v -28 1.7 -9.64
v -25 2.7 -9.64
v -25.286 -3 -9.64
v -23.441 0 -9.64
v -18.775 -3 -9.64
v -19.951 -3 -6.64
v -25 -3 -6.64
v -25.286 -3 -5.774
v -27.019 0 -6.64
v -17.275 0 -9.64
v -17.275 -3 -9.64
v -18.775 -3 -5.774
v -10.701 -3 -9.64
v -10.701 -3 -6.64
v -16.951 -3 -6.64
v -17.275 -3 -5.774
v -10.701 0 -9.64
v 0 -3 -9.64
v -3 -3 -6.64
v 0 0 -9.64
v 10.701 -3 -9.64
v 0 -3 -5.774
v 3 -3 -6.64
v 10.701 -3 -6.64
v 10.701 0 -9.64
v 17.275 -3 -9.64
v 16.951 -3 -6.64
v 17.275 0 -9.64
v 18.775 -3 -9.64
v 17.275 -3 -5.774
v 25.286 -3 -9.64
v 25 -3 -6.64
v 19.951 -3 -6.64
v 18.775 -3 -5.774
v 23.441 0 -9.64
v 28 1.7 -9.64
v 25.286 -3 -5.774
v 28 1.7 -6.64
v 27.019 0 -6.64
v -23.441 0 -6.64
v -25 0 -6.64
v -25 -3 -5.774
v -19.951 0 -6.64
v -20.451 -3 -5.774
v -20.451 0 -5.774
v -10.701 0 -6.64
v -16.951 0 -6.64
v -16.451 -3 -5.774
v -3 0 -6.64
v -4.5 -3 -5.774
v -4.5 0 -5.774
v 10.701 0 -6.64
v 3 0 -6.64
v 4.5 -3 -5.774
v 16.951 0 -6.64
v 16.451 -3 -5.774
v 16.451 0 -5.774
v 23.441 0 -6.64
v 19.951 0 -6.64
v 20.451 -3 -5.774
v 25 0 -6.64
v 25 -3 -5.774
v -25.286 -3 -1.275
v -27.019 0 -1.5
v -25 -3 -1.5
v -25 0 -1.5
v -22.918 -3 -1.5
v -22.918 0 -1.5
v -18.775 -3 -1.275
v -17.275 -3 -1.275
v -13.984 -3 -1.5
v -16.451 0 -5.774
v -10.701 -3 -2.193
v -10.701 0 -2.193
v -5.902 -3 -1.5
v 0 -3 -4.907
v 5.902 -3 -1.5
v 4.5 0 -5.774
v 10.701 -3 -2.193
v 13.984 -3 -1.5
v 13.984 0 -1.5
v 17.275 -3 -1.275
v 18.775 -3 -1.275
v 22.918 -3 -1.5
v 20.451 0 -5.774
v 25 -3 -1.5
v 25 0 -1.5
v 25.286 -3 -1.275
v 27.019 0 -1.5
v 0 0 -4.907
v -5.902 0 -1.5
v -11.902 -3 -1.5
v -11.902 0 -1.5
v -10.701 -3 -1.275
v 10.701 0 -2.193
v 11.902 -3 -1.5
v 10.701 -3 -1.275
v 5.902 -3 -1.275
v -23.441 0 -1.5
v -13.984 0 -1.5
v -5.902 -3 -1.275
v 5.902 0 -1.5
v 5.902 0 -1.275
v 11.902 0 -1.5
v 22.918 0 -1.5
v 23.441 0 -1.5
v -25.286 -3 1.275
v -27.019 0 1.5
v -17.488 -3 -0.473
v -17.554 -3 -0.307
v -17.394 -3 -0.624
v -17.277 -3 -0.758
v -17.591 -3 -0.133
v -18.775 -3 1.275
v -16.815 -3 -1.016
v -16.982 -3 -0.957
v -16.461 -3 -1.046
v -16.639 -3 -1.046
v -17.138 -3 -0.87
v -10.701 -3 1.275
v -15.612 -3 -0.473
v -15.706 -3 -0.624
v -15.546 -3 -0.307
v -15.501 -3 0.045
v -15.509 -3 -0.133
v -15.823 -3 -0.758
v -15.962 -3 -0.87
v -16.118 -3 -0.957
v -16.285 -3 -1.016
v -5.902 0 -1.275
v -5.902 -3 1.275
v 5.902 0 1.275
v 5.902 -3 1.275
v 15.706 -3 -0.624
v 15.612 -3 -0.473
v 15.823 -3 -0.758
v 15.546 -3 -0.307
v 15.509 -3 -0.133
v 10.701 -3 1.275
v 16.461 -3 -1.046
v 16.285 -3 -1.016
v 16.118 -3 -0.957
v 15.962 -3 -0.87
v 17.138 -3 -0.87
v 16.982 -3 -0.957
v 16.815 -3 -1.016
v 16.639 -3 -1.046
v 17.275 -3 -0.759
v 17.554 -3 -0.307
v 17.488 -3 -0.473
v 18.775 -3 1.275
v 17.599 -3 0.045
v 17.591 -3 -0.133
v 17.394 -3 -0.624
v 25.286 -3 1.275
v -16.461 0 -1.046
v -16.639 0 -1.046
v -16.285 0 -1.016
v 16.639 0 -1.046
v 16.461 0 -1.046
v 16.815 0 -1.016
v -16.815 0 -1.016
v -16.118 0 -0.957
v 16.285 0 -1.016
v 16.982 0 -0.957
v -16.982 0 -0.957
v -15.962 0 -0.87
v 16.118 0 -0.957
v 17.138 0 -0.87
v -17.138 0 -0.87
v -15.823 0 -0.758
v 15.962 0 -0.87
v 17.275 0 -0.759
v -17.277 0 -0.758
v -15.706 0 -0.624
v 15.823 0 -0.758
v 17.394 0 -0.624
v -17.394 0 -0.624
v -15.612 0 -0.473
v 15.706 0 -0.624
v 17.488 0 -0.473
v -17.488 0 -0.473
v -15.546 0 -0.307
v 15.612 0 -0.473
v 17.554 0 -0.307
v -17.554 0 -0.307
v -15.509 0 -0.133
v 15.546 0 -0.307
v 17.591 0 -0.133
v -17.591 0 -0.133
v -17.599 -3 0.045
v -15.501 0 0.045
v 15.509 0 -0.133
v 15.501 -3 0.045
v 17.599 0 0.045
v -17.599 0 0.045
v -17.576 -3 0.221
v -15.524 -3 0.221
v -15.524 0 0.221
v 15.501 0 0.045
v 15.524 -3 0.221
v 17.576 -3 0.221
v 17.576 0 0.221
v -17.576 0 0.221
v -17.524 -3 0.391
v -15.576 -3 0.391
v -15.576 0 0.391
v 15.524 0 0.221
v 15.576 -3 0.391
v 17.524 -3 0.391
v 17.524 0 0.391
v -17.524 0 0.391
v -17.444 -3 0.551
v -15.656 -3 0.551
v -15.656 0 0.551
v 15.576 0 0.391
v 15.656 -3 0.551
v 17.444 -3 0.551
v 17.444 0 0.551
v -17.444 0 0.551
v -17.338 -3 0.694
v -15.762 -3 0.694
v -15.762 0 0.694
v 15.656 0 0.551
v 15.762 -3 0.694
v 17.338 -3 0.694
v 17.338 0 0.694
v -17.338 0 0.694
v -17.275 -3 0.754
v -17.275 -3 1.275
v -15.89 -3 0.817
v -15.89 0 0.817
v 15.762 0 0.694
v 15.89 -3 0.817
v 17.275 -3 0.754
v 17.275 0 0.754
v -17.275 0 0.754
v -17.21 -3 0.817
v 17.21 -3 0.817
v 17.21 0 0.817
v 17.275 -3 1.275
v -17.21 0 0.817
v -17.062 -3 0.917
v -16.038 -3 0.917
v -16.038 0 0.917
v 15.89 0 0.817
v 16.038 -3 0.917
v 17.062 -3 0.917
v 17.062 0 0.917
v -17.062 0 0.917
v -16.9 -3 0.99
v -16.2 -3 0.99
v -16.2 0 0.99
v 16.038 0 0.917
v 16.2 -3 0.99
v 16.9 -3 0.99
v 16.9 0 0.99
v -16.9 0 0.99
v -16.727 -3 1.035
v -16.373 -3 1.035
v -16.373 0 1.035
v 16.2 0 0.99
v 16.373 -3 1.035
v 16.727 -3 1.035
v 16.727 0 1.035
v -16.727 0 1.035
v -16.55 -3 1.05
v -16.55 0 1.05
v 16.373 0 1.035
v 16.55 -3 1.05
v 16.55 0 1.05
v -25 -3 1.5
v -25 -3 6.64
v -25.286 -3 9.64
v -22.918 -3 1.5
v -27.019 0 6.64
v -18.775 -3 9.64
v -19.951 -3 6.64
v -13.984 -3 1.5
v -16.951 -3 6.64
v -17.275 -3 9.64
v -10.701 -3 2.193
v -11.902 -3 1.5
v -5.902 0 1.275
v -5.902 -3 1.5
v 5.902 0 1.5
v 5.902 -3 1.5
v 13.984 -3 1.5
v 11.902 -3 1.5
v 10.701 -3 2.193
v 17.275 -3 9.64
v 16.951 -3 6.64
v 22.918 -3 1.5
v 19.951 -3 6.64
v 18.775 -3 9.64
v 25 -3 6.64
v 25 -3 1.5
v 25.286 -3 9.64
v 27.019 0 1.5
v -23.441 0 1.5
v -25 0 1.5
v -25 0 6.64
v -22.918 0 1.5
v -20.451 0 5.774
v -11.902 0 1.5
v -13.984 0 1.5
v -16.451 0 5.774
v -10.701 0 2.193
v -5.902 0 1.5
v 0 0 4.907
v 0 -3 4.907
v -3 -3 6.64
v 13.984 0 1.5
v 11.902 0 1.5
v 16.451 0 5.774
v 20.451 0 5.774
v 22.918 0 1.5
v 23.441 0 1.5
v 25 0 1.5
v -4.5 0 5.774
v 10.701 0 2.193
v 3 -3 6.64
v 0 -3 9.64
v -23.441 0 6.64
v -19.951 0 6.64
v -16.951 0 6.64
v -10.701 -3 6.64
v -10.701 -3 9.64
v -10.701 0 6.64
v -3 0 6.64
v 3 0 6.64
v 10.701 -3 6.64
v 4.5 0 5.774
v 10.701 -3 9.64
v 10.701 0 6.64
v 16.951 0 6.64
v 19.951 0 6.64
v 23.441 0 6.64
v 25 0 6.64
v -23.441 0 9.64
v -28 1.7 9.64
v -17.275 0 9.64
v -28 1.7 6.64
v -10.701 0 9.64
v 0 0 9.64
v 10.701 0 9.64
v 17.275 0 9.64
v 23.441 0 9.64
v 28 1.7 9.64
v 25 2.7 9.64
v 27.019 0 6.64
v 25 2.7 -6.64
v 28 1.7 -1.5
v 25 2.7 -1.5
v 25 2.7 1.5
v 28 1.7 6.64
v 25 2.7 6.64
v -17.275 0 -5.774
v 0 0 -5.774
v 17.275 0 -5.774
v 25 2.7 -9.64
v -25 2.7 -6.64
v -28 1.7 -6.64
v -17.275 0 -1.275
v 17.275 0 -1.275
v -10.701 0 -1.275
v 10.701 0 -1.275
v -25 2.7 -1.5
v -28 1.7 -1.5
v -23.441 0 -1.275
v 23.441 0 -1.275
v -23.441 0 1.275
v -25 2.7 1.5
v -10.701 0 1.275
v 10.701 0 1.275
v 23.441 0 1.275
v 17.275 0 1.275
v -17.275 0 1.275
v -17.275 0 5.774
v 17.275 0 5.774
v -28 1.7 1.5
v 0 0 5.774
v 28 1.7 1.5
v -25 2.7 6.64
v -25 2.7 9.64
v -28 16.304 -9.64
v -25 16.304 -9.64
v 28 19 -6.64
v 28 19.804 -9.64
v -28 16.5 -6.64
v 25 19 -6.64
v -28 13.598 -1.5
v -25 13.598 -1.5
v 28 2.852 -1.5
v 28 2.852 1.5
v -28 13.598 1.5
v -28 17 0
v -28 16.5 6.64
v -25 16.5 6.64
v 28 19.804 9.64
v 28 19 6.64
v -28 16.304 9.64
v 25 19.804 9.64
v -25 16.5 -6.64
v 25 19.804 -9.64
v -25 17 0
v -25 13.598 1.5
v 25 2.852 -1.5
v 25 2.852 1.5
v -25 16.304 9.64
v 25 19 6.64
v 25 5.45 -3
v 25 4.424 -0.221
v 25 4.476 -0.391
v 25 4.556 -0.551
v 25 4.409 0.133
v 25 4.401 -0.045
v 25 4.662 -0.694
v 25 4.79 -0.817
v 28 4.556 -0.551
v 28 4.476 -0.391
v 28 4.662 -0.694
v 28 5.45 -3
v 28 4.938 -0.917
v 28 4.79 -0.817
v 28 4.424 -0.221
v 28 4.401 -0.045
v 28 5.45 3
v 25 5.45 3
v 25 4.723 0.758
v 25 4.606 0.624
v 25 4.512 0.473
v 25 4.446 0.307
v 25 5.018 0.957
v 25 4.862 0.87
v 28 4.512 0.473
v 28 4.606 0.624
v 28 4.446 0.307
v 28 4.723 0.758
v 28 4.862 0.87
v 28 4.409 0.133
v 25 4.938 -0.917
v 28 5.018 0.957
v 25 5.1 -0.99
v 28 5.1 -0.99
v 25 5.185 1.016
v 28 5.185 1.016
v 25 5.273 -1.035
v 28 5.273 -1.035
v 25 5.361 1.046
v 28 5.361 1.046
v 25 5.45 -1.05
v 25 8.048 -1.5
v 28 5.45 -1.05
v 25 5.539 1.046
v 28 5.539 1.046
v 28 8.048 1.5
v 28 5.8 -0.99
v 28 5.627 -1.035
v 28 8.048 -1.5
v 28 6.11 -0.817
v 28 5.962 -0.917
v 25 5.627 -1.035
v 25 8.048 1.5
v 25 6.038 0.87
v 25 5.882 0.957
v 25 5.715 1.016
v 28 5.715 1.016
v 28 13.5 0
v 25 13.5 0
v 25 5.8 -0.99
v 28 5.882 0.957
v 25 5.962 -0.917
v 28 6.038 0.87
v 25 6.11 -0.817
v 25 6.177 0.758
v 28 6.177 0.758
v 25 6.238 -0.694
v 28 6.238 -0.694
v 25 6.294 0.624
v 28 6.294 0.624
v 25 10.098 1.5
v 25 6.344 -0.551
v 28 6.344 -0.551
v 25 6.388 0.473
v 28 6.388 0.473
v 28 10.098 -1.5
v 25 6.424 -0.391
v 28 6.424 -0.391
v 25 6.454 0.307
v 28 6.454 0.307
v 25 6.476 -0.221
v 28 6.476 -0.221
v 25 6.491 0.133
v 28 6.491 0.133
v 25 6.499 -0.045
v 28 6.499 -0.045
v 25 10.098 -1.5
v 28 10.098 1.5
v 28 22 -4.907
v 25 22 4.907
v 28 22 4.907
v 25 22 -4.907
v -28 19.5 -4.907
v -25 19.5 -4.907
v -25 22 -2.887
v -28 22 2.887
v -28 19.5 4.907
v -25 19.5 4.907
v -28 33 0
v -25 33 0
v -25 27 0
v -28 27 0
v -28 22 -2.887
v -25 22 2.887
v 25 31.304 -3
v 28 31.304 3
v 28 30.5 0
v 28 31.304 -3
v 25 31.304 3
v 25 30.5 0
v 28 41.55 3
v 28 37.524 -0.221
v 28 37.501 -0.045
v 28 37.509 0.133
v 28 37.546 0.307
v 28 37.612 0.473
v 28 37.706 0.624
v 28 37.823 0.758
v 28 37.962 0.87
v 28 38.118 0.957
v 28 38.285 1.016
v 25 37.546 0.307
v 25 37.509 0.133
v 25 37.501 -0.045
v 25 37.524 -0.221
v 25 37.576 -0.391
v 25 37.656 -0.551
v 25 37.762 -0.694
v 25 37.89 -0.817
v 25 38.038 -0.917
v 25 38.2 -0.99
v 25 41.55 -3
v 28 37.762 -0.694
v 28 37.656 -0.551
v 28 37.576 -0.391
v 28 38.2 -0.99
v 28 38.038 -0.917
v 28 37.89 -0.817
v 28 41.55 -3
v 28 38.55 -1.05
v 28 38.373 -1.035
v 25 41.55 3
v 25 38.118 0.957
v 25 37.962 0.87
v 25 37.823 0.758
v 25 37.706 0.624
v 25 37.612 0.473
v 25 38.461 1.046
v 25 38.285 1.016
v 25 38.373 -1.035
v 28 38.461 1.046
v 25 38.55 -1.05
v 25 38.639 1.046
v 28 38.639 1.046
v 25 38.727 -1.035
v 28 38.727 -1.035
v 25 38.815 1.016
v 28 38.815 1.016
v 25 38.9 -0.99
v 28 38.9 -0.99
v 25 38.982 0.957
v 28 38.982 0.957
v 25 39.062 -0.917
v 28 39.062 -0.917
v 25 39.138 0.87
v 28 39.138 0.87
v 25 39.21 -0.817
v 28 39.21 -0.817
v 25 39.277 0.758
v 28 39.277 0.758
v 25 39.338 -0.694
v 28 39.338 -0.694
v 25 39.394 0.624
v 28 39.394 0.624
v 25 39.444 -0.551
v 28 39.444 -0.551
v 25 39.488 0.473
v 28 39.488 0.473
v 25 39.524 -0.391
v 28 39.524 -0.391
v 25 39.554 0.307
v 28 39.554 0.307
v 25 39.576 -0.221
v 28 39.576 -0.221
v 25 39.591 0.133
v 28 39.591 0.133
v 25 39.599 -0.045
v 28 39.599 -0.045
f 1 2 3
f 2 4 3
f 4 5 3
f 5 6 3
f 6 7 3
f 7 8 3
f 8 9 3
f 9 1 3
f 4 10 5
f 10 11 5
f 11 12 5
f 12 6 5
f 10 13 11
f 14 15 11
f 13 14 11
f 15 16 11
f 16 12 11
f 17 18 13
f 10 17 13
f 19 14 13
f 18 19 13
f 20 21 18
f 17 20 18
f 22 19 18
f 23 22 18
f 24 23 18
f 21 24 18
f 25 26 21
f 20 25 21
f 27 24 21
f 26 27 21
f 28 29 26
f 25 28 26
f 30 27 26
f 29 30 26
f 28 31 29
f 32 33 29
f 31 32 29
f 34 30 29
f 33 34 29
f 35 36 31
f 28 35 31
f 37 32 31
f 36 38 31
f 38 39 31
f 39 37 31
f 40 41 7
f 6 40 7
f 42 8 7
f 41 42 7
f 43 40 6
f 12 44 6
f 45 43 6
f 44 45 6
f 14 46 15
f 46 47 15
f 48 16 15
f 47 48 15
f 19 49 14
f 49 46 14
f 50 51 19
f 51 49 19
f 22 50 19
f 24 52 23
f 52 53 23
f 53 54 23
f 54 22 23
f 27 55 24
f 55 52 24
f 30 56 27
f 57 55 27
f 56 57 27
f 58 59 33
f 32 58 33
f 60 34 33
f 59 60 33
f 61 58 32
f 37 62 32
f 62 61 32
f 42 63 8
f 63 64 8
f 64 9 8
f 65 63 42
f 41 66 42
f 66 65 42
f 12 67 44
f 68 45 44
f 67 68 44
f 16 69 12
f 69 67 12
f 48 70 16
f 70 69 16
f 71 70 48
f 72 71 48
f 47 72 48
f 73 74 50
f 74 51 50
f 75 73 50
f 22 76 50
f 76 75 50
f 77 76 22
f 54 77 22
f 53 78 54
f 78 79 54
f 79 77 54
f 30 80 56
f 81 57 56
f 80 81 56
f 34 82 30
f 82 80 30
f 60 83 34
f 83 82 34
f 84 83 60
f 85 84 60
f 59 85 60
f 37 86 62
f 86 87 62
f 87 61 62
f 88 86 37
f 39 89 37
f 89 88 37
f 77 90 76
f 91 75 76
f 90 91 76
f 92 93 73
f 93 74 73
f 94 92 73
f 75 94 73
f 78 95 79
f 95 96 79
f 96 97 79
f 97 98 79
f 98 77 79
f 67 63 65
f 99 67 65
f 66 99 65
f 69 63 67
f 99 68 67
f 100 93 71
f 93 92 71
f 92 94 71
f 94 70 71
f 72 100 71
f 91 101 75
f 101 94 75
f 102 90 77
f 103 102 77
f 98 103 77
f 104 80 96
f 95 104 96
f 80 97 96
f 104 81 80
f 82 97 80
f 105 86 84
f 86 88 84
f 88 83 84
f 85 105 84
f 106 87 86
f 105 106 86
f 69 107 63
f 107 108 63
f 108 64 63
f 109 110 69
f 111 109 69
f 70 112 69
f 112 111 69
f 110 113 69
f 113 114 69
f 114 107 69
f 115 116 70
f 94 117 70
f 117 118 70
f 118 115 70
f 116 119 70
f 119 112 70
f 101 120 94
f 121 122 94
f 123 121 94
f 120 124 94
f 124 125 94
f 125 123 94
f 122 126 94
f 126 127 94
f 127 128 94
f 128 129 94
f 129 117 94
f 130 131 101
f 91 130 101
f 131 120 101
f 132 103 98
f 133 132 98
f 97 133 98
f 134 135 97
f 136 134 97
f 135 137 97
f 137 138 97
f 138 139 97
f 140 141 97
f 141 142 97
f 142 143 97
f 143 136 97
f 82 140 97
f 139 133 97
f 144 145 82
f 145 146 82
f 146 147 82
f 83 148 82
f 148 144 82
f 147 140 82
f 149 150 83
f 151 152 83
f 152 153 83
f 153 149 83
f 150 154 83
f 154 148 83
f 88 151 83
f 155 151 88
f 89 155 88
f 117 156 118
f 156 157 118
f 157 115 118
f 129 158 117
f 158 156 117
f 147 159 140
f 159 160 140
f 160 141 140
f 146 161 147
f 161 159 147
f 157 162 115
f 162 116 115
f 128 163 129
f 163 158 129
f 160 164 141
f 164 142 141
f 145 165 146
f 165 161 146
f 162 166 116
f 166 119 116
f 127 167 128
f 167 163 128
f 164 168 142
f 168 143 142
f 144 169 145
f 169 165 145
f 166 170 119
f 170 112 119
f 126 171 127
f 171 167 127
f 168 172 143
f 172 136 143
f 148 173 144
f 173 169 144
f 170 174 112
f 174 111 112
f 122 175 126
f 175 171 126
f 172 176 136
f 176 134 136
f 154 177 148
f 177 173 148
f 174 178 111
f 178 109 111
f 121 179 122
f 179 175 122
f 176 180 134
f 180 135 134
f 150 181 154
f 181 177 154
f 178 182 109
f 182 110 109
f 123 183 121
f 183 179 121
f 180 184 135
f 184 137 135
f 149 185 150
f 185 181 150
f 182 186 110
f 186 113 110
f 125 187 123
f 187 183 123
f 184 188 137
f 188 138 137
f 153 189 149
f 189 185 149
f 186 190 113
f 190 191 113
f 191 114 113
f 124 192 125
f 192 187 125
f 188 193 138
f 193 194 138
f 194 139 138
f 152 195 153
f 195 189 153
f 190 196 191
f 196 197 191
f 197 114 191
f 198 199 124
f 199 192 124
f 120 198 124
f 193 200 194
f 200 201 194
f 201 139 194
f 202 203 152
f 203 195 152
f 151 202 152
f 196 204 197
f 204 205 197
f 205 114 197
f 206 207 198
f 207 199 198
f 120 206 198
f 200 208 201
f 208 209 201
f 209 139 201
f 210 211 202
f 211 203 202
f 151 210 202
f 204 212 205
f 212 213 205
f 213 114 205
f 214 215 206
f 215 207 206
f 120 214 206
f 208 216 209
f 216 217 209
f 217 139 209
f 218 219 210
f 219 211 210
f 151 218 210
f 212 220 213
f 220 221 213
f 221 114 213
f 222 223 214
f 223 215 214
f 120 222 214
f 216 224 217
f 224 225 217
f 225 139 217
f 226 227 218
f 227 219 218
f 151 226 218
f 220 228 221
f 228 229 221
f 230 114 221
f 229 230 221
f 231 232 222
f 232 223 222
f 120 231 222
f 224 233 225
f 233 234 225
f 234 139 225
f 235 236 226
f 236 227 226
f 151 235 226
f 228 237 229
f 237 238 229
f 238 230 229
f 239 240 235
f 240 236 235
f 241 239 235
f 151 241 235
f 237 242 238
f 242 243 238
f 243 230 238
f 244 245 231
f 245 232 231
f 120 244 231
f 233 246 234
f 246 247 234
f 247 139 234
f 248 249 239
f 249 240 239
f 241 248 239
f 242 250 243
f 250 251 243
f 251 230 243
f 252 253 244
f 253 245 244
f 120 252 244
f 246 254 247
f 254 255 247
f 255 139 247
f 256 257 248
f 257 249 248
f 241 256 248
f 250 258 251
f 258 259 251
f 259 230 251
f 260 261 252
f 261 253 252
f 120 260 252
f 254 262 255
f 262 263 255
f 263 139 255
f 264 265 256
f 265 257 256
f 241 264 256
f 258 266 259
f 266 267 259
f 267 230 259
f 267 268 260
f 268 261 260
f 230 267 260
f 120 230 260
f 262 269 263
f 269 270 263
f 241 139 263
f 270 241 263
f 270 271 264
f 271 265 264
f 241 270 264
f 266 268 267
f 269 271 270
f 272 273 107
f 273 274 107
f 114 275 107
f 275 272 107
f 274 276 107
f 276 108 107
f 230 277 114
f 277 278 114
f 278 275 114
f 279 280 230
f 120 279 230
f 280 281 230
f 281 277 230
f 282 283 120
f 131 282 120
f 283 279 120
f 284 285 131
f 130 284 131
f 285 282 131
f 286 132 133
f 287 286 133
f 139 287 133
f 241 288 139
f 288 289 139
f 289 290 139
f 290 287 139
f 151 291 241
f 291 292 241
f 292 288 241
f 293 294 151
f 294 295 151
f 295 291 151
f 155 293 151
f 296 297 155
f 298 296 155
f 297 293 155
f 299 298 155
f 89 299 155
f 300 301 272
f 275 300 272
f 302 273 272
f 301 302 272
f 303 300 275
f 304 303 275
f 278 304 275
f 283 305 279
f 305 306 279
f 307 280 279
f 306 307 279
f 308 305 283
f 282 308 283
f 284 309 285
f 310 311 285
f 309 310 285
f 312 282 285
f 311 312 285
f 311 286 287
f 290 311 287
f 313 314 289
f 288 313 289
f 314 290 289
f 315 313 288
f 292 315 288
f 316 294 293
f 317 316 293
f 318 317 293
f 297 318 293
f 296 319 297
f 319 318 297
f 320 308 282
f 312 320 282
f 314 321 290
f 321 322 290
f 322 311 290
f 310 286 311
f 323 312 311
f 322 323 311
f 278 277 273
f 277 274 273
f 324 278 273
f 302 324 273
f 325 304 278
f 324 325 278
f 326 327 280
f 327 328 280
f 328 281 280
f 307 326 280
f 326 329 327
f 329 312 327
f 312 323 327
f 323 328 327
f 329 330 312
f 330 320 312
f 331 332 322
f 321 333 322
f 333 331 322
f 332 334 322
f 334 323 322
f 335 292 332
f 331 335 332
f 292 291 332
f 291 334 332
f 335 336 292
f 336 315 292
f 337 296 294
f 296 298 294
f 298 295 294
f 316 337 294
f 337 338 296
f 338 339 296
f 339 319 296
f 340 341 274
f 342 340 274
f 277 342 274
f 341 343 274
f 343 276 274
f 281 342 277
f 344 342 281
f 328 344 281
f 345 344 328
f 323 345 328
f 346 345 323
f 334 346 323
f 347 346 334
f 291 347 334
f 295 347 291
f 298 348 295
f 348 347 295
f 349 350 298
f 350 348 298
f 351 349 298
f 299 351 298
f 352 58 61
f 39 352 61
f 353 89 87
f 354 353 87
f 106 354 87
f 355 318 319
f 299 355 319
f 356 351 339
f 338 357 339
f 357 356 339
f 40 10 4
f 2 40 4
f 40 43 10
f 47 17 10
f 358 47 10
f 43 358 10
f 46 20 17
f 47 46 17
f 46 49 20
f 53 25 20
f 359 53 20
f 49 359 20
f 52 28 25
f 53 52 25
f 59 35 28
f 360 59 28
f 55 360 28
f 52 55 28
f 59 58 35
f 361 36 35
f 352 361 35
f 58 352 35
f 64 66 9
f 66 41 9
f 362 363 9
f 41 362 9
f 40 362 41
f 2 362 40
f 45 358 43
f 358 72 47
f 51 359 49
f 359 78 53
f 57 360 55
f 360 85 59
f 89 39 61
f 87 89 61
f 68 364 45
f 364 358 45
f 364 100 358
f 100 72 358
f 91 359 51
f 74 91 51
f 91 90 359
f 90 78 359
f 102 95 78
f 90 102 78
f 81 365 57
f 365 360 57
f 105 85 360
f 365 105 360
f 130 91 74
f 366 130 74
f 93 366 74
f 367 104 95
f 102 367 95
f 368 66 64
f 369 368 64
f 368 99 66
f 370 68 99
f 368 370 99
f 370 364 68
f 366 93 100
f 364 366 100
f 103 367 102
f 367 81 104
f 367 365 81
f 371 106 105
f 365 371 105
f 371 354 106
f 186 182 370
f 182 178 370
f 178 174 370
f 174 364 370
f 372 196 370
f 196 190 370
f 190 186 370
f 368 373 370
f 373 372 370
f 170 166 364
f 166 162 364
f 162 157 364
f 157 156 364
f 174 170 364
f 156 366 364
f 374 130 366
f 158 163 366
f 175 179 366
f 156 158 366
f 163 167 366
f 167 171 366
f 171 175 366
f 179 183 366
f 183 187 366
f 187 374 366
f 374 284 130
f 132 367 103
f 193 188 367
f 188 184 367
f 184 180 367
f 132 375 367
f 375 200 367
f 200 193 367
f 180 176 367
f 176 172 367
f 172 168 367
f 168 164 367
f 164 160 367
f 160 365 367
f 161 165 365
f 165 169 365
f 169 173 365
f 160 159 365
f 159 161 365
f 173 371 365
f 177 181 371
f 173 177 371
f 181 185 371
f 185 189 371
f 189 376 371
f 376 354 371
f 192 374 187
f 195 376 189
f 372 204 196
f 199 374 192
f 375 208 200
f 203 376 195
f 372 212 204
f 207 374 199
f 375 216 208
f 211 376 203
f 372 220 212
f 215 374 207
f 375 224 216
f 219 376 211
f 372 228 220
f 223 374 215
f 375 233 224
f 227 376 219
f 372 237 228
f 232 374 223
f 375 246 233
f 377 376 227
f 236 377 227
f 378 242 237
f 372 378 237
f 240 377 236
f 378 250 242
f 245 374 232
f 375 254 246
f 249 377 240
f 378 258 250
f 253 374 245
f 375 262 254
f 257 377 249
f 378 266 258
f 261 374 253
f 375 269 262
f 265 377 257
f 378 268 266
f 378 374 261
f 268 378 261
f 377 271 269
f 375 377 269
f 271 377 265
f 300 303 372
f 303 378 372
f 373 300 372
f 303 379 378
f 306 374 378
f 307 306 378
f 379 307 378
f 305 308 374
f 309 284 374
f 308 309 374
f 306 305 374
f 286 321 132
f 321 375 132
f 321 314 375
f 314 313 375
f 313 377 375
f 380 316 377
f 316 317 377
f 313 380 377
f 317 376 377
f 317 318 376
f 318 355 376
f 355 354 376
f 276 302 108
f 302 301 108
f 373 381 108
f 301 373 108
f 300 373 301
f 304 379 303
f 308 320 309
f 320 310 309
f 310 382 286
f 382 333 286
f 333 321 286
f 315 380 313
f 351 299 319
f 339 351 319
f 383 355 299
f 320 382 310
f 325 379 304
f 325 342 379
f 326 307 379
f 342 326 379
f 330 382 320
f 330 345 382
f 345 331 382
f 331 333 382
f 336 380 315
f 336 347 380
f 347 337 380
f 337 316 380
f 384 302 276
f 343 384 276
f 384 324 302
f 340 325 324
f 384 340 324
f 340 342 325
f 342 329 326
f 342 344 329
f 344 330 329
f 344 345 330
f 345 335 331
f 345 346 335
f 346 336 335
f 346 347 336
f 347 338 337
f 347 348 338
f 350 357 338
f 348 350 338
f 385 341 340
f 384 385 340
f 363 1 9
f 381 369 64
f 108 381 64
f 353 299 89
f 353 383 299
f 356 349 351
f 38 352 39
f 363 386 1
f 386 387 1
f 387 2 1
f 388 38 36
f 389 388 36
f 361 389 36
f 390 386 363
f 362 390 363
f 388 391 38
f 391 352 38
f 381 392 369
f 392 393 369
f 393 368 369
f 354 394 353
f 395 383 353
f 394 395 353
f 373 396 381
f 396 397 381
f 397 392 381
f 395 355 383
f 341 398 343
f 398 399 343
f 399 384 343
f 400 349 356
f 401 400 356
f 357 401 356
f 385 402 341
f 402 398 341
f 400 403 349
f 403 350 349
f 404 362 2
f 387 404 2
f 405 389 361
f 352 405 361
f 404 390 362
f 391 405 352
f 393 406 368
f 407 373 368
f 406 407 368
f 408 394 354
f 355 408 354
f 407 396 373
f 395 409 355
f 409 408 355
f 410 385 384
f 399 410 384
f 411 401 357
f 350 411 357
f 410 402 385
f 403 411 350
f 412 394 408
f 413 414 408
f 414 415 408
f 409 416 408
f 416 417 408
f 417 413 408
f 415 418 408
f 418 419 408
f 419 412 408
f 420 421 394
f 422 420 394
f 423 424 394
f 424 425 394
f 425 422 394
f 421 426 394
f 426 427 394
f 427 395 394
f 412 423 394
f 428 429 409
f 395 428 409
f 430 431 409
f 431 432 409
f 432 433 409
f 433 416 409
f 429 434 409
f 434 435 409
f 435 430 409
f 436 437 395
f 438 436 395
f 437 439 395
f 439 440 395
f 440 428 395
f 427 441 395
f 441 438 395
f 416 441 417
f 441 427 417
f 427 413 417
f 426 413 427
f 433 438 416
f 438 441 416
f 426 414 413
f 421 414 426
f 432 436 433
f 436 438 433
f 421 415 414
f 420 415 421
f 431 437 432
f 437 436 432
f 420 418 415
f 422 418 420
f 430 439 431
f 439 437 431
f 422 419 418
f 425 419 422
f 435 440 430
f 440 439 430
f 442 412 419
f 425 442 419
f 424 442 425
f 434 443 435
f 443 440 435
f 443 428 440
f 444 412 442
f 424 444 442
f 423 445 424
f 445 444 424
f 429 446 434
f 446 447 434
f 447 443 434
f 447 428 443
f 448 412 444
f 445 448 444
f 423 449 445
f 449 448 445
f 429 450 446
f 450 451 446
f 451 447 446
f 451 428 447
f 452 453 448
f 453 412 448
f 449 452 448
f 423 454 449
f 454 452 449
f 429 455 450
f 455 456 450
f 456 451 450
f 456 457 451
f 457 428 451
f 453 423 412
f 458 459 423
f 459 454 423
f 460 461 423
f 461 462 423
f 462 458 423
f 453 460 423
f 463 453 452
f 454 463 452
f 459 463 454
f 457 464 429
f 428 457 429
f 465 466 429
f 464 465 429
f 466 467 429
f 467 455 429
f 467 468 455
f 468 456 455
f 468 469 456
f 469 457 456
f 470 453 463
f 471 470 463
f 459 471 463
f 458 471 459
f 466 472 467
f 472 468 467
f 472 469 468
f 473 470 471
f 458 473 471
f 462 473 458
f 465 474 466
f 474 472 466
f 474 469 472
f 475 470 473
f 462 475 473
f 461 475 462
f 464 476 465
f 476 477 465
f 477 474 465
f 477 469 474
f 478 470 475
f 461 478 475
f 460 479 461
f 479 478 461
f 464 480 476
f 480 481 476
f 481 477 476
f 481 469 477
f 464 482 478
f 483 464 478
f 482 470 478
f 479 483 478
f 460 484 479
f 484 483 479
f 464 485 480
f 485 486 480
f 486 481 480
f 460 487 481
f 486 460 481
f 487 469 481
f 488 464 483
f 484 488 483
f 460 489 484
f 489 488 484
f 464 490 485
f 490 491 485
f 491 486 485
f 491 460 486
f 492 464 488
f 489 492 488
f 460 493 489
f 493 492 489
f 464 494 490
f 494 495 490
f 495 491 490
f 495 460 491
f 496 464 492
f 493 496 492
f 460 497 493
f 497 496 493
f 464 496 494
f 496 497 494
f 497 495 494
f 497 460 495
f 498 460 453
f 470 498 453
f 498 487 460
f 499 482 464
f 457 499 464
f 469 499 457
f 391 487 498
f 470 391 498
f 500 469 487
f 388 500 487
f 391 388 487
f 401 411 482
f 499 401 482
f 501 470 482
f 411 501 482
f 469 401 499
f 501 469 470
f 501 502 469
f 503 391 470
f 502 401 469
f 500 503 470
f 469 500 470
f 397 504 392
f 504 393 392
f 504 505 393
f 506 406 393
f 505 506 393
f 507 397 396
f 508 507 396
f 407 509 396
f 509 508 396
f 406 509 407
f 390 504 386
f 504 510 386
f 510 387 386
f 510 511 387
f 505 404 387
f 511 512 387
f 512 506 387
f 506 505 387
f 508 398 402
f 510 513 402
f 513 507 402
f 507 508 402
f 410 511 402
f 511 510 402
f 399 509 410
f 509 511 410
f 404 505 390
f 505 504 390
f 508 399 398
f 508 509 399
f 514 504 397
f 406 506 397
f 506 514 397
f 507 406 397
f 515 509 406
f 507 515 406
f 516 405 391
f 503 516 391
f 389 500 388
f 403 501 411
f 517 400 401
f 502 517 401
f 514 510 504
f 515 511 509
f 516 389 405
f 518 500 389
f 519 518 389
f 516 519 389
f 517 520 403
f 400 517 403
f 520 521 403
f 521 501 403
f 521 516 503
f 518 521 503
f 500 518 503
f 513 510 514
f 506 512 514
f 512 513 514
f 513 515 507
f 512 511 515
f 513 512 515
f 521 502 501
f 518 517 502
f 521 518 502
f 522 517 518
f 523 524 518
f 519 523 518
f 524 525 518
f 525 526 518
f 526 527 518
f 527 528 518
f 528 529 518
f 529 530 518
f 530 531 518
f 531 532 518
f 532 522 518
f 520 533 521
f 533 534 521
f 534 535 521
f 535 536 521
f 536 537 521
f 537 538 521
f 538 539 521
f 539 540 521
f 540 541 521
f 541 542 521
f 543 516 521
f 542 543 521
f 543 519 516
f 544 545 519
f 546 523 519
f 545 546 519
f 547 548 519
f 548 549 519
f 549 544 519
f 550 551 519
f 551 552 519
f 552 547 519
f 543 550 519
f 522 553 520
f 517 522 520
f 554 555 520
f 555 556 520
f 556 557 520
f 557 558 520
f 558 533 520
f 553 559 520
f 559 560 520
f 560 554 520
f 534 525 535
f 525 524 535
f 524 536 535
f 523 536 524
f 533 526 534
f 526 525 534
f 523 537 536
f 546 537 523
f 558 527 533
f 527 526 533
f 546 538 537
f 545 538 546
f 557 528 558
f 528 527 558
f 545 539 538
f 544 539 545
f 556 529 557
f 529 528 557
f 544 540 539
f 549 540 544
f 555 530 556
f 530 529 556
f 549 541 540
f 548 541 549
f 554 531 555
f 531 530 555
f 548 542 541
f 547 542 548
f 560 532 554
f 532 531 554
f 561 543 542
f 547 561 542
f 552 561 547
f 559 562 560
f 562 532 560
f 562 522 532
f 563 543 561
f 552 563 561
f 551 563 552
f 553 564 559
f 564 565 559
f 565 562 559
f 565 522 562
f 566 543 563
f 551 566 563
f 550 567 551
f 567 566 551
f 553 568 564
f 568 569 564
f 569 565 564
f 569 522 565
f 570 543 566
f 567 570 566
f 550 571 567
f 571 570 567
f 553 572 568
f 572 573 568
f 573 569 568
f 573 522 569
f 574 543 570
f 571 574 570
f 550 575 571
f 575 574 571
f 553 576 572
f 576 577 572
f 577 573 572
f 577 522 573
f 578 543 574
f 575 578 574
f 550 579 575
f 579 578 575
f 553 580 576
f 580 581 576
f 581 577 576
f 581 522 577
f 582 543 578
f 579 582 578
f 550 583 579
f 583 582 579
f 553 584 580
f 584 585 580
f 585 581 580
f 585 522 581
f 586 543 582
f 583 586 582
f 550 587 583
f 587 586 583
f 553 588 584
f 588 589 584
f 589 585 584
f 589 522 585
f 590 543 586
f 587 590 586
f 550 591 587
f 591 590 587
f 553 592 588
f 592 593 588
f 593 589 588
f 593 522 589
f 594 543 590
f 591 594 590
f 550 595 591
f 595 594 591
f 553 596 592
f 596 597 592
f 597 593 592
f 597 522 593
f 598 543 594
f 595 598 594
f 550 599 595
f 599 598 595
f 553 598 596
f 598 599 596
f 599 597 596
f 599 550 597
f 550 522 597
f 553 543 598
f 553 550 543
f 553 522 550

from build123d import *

# Parameters (mm, degrees)
SKETCH1_R               = 1.05
BOSS_EXTRUDE1_DEPTH     = 3
SKETCH4_W               = 3
SKETCH4_H               = 5.139528096
BOSS_EXTRUDE5_DEPTH     = 3
MIRROR3_COPY_1_SKETCH_W = 3
MIRROR3_COPY_1_SKETCH_H = 5.139528096
MIRROR3_COPY_1_DEPTH    = 3
SKETCH5_R               = 1.05
BOSS_EXTRUDE6_DEPTH     = 3
CHAMFER2_SIZE           = 10
CHAMFER2_SIZE_2         = 5.773502692
BOSS_EXTRUDE8_DEPTH     = 3
CUT_EXTRUDE3_DEPTH      = 19.279056191
CHAMFER4_SIZE           = 2.7
CHAMFER4_SIZE_2         = 1.558845727
CHAMFER5_SIZE           = 2.713546265
CHAMFER5_SIZE_2         = 4.7


with BuildPart() as part:
    # Sketch1 → Boss-Extrude1 (new body)
    with BuildSketch(Plane(origin=(0, 0, 0), x_dir=(1, 0, 0), z_dir=(0, 1, 0))):
        Polygon((-28, -1.5), (-28, 1.5), (-11.901923789, 1.5), (-3, 6.639528096), (-28, 6.639528096), (-28, 9.639528096), (28, 9.639528096), (28, 6.639528096), (3, 6.639528096), (11.901923789, 1.5), (28, 1.5), (28, -1.5), (11.901923789, -1.5), (3, -6.639528096), (28, -6.639528096), (28, -9.639528096), (-28, -9.639528096), (-28, -6.639528096), (-3, -6.639528096), (-11.901923789, -1.5), align=None)
        with Locations(Location((-16.55, 0, 0), (0, 0, 270))):
            Circle(SKETCH1_R, mode=Mode.SUBTRACT)
        with Locations(Location((16.55, 0, 0), (0, 0, 270))):
            Circle(SKETCH1_R, mode=Mode.SUBTRACT)
        Polygon((-5.901923789, 1.5), (0, 4.907477288), (5.901923789, 1.5), (5.901923789, -1.5), (0, -4.907477288), (-5.901923789, -1.5), align=None, mode=Mode.SUBTRACT)
    extrude(amount=-BOSS_EXTRUDE1_DEPTH)

    # Sketch4 → Boss-Extrude5 (add)
    with BuildSketch(Plane(origin=(0, 0, 0), x_dir=(1, 0, 0), z_dir=(0, 1, 0))):
        with Locations((-26.5, 4.069764048)):
            Rectangle(SKETCH4_W, SKETCH4_H)
        Polygon((-13.983653965, 1.5), (-16.950961894, 6.639528096), (-19.950961894, 6.639528096), (-22.918269824, 1.5), align=None)
    boss_extrude5 = extrude(amount=-BOSS_EXTRUDE5_DEPTH)

    # Mirror2: Boss-Extrude5 across plane
    add(boss_extrude5.mirror(Plane.XY))

    # Mirror3: Boss-Extrude5 across plane
    add(boss_extrude5.mirror(Plane(origin=(0, 0, 0), x_dir=(0, 0, 1), z_dir=(1, 0, 0))))

    # Mirror3 copy 1 sketch → Mirror3 copy 1 (add)
    with BuildSketch(Plane(origin=(0, 0, 0), x_dir=(-1, 0, 0), z_dir=(0, 1, 0))):
        with Locations((-26.5, 4.069764048)):
            Rectangle(MIRROR3_COPY_1_SKETCH_W, MIRROR3_COPY_1_SKETCH_H)
        Polygon((-13.983653965, 1.5), (-16.950961894, 6.639528096), (-19.950961894, 6.639528096), (-22.918269824, 1.5), align=None)
    extrude(amount=-MIRROR3_COPY_1_DEPTH)

    # Sketch5 → Boss-Extrude6 (add)
    with BuildSketch(Plane(origin=(28, 0, 0), x_dir=(0, 0, -1), z_dir=(1, 0, 0))):
        Polygon((-1.5, 0), (1.5, 0), (1.5, 2.851923789), (3, 5.45), (1.5, 8.048076211), (1.5, 10.098076211), (6.639528096, 19), (6.639528096, 0), (9.639528096, 0), (9.639528096, 19.803847577), (6.639528096, 25), (3, 31.303847577), (3, 41.55), (-3, 41.55), (-3, 31.303847577), (-6.639528096, 25), (-9.639528096, 19.803847577), (-9.639528096, 0), (-6.639528096, 0), (-6.639528096, 19), (-1.5, 10.098076211), (-1.5, 8.048076211), (-3, 5.45), (-1.5, 2.851923789), align=None)
        with Locations((0, 38.55)):
            Circle(SKETCH5_R, mode=Mode.SUBTRACT)
        with Locations((0, 5.45)):
            Circle(SKETCH5_R, mode=Mode.SUBTRACT)
        Polygon((-1.5, 27.901923789), (-4.907477288, 22), (-1.5, 16.098076211), (0, 13.5), (1.5, 16.098076211), (4.907477288, 22), (1.5, 27.901923789), (0, 30.5), align=None, mode=Mode.SUBTRACT)
    extrude(amount=-BOSS_EXTRUDE6_DEPTH)

    # Chamfer2
    # the kernel refuses this chamfer: 10, 5.773502692 mm, written as the material it adds along each edge
    with BuildSketch(Plane(origin=(25, 0, 19.231329451), x_dir=(0.019326765612700636, 0.9998132206222079, 0), z_dir=(0, 0, -1))) as chamfer2_piece_1_section:
        Polygon((CHAMFER2_SIZE * 0.999813220622, -CHAMFER2_SIZE * 0.0193267656127), (-CHAMFER2_SIZE_2 * 0.0193267656124, -CHAMFER2_SIZE_2 * 0.999813220604), (0, 0), align=None)
    chamfer2_piece_1 = extrude(amount=54.741715093, mode=Mode.PRIVATE)
    chamfer2_piece_1 = split(chamfer2_piece_1, bisect_by=Plane(origin=(23.083170395, 3.339976868, 9.639528096), z_dir=(0, 0, -1)), keep=Keep.TOP, mode=Mode.PRIVATE)
    chamfer2_piece_1 = split(chamfer2_piece_1, bisect_by=Plane(origin=(23.083170395, 3.339976868, 6.639528096), z_dir=(0, 0, 1)), keep=Keep.TOP, mode=Mode.PRIVATE)
    add(chamfer2_piece_1)
    with BuildSketch(Plane(origin=(25, 0, 19.231329451), x_dir=(0.019326765612700636, 0.9998132206222079, 0), z_dir=(0, 0, -1))) as chamfer2_piece_2_section:
        Polygon((CHAMFER2_SIZE * 0.999813220622, -CHAMFER2_SIZE * 0.0193267656127), (-CHAMFER2_SIZE_2 * 0.0193267656124, -CHAMFER2_SIZE_2 * 0.999813220604), (0, 0), align=None)
    chamfer2_piece_2 = extrude(amount=54.741715093, mode=Mode.PRIVATE)
    chamfer2_piece_2 = chamfer2_piece_2 - Plane(origin=(20.16592145, 5.45, 0), x_dir=(0, 0, -1), z_dir=(1, 0, 0)) * Cylinder(1.05, 150, mode=Mode.PRIVATE)
    chamfer2_piece_2 = split(chamfer2_piece_2, bisect_by=Plane(origin=(20.36501826, 1.167335957, 5.922361434), z_dir=(-0.8660254037844365, 0, -0.5000000000000038)), keep=Keep.TOP, mode=Mode.PRIVATE)
    chamfer2_piece_2 = split(chamfer2_piece_2, bisect_by=Plane(origin=(20.16592145, 1.167335957, -1.5), z_dir=(0, 0, 1)), keep=Keep.TOP, mode=Mode.PRIVATE)
    add(chamfer2_piece_2)
    with BuildSketch(Plane(origin=(25, 0, 19.231329451), x_dir=(0.019326765612700636, 0.9998132206222079, 0), z_dir=(0, 0, -1))) as chamfer2_piece_3_section:
        Polygon((CHAMFER2_SIZE * 0.999813220622, -CHAMFER2_SIZE * 0.0193267656127), (-CHAMFER2_SIZE_2 * 0.0193267656124, -CHAMFER2_SIZE_2 * 0.999813220604), (0, 0), align=None)
    chamfer2_piece_3 = extrude(amount=54.741715093, mode=Mode.PRIVATE)
    chamfer2_piece_3 = chamfer2_piece_3 - Plane(origin=(24.384879917, 5.45, 0), x_dir=(0, 0, -1), z_dir=(1, 0, 0)) * Cylinder(1.05, 150, mode=Mode.PRIVATE)
    chamfer2_piece_3 = split(chamfer2_piece_3, bisect_by=Plane(origin=(24.384879917, 8.598015425, 1.5), z_dir=(0, 0, -1)), keep=Keep.TOP, mode=Mode.PRIVATE)
    chamfer2_piece_3 = split(chamfer2_piece_3, bisect_by=Plane(origin=(24.384879917, 8.598015425, -1.5), z_dir=(0, 0, 1)), keep=Keep.TOP, mode=Mode.PRIVATE)
    add(chamfer2_piece_3)
    with BuildSketch(Plane(origin=(25, 0, 19.231329451), x_dir=(0.019326765612700636, 0.9998132206222079, 0), z_dir=(0, 0, -1))) as chamfer2_piece_4_section:
        Polygon((CHAMFER2_SIZE * 0.999813220622, -CHAMFER2_SIZE * 0.0193267656127), (-CHAMFER2_SIZE_2 * 0.0193267656124, -CHAMFER2_SIZE_2 * 0.999813220604), (0, 0), align=None)
    chamfer2_piece_4 = extrude(amount=54.741715093, mode=Mode.PRIVATE)
    chamfer2_piece_4 = split(chamfer2_piece_4, bisect_by=Plane(origin=(22.219816408, 4.29897732, -1.5), z_dir=(0, 0, -1)), keep=Keep.TOP, mode=Mode.PRIVATE)
    chamfer2_piece_4 = split(chamfer2_piece_4, bisect_by=Plane(origin=(22.603293948, 4.29897732, -2.04555422), z_dir=(-0.8660254037844365, 0, 0.5000000000000038)), keep=Keep.TOP, mode=Mode.PRIVATE)
    add(chamfer2_piece_4)
    with BuildSketch(Plane(origin=(25, 0, -6.639528096), x_dir=(0.019326765612700636, 0.9998132206222079, 0), z_dir=(0, 0, -1))) as chamfer2_piece_5:
        Polygon((CHAMFER2_SIZE * 0.999813220622, -CHAMFER2_SIZE * 0.0193267656127), (-CHAMFER2_SIZE_2 * 0.0193267656124, -CHAMFER2_SIZE_2 * 0.999813220604), (0, 0), align=None)
    extrude(amount=3)

    # Sketch8 → Boss-Extrude8 (add)
    with BuildSketch(Plane.ZY.offset(28)):
        Polygon((0, 33), (-6.350852961, 22), (-9.639528096, 16.303847577), (-9.639528096, 0), (-6.639528096, 0), (-6.639528096, 16.5), (-4.907477288, 19.5), (-1.5, 13.598076211), (-1.5, 0), (1.5, 0), (1.5, 13.598076211), (4.907477288, 19.5), (6.639528096, 16.5), (6.639528096, 0), (9.639528096, 0), (9.639528096, 16.303847577), (6.350852961, 22), align=None)
        Polygon((0, 17), (2.886751346, 22), (0, 27), (-2.886751346, 22), align=None, mode=Mode.SUBTRACT)
    extrude(amount=-BOSS_EXTRUDE8_DEPTH)

    # Sketch11 → Cut-Extrude3 (cut)
    with BuildSketch(Plane(origin=(0, 0, -9.639528096), x_dir=(-1, 0, 0), z_dir=(0, 0, -1))):
        Polygon((-19.226497308, 0), (-25, 0), (-25, 10), align=None)
    extrude(amount=-CUT_EXTRUDE3_DEPTH, mode=Mode.SUBTRACT)

    # Chamfer4
    # the kernel refuses this chamfer: 2.7, 1.558845727 mm, written as the material it adds along each edge
    with BuildSketch(Plane(origin=(-25, 0, -0.345603442), x_dir=(-0.019326765612700168, 0.9998132206222078, 0), z_dir=(0, 0, 1))) as chamfer4_piece_1_section:
        Polygon((CHAMFER4_SIZE * 0.999813220622, -CHAMFER4_SIZE * 0.0193267656127), (-CHAMFER4_SIZE_2 * 0.0193267656104, -CHAMFER4_SIZE_2 * 0.999813220502), (0, 0), align=None)
    chamfer4_piece_1 = extrude(amount=9.985131538, mode=Mode.PRIVATE)
    chamfer4_piece_1 = split(chamfer4_piece_1, bisect_by=Plane(origin=(-24.500125104, 0.905532133, 1.5), z_dir=(0, 0, -1)), keep=Keep.TOP, mode=Mode.PRIVATE)
    add(chamfer4_piece_1)
    with BuildSketch(Plane(origin=(-25, 0, 6.639528096), x_dir=(-0.019326765612700168, 0.9998132206222078, 0), z_dir=(0, 0, 1)), Plane(origin=(-25, 0, -1.5), x_dir=(-0.019326765612700168, 0.9998132206222078, 0), z_dir=(0, 0, 1)), Plane(origin=(-25, 0, -9.639528096), x_dir=(-0.019326765612701444, 0.9998132206222078, 0), z_dir=(0, 0, 1))) as chamfer4_piece_2:
        Polygon((CHAMFER4_SIZE * 0.999813220622, -CHAMFER4_SIZE * 0.0193267656127), (-CHAMFER4_SIZE_2 * 0.0193267656104, -CHAMFER4_SIZE_2 * 0.999813220502), (0, 0), align=None)
    extrude(amount=3)
    with BuildSketch(Plane(origin=(-25, 0, -8.485131538), x_dir=(-0.019326765612700168, 0.9998132206222078, 0), z_dir=(0, 0, 1))) as chamfer4_piece_3_section:
        Polygon((CHAMFER4_SIZE * 0.999813220622, -CHAMFER4_SIZE * 0.0193267656127), (-CHAMFER4_SIZE_2 * 0.0193267656104, -CHAMFER4_SIZE_2 * 0.999813220502), (0, 0), align=None)
    chamfer4_piece_3 = extrude(amount=9.985131538, mode=Mode.PRIVATE)
    chamfer4_piece_3 = split(chamfer4_piece_3, bisect_by=Plane(origin=(-24.500125104, 0.905532133, -6.639528096), z_dir=(0, 0, -1)), keep=Keep.TOP, mode=Mode.PRIVATE)
    add(chamfer4_piece_3)
    with BuildSketch(Plane(origin=(-25, 0, -1.5), x_dir=(-0.019326765612700168, 0.9998132206222078, 0), z_dir=(0, 0, 1))) as chamfer4_piece_4_section:
        Polygon((CHAMFER4_SIZE * 0.999813220622, -CHAMFER4_SIZE * 0.0193267656127), (-CHAMFER4_SIZE_2 * 0.0193267656104, -CHAMFER4_SIZE_2 * 0.999813220502), (0, 0), align=None)
    chamfer4_piece_4 = extrude(amount=9.985131538, mode=Mode.PRIVATE)
    chamfer4_piece_4 = split(chamfer4_piece_4, bisect_by=Plane(origin=(-24.500125104, 0.905532133, 6.639528096), z_dir=(0, 0, 1)), keep=Keep.TOP, mode=Mode.PRIVATE)
    add(chamfer4_piece_4)
    with BuildSketch(Plane(origin=(-25, 0, -9.639528096), x_dir=(-0.019326765612701444, 0.9998132206222078, 0), z_dir=(0, 0, 1))) as chamfer4_piece_5_section:
        Polygon((CHAMFER4_SIZE * 0.999813220622, -CHAMFER4_SIZE * 0.0193267656127), (-CHAMFER4_SIZE_2 * 0.0193267656104, -CHAMFER4_SIZE_2 * 0.999813220502), (0, 0), align=None)
    chamfer4_piece_5 = extrude(amount=9.985131538, mode=Mode.PRIVATE)
    chamfer4_piece_5 = split(chamfer4_piece_5, bisect_by=Plane(origin=(-24.500125104, 0.905532133, -1.5), z_dir=(0, 0, 1)), keep=Keep.TOP, mode=Mode.PRIVATE)
    add(chamfer4_piece_5)
    with BuildSketch(Plane(origin=(25, 0, -0.345603442), x_dir=(0.019326765612700168, 0.9998132206222078, 0), z_dir=(0, 0, 1))) as chamfer4_piece_6_section:
        Polygon((CHAMFER4_SIZE * 0.999813220622, CHAMFER4_SIZE * 0.0193267656127), (-CHAMFER4_SIZE_2 * 0.0193267656104, CHAMFER4_SIZE_2 * 0.999813220502), (0, 0), align=None)
    chamfer4_piece_6 = extrude(amount=9.985131537, mode=Mode.PRIVATE)
    chamfer4_piece_6 = split(chamfer4_piece_6, bisect_by=Plane(origin=(24.500125104, 0.905532133, 1.5), z_dir=(0, 0, -1)), keep=Keep.TOP, mode=Mode.PRIVATE)
    add(chamfer4_piece_6)
    with BuildSketch(Plane(origin=(25, 0, 6.639528096), x_dir=(0.01932676561269762, 0.999813220622208, 0), z_dir=(0, 0, 1)), Plane(origin=(25, 0, -1.5), x_dir=(0.01932676561269762, 0.999813220622208, 0), z_dir=(0, 0, 1)), Plane(origin=(25, 0, -9.639528096), x_dir=(0.019326765612698894, 0.999813220622208, 0), z_dir=(0, 0, 1))) as chamfer4_piece_7:
        Polygon((CHAMFER4_SIZE * 0.999813220622, CHAMFER4_SIZE * 0.0193267656127), (-CHAMFER4_SIZE_2 * 0.0193267656104, CHAMFER4_SIZE_2 * 0.999813220502), (0, 0), align=None)
    extrude(amount=3)
    with BuildSketch(Plane(origin=(25, 0, -8.485131538), x_dir=(0.019326765612700168, 0.9998132206222078, 0), z_dir=(0, 0, 1))) as chamfer4_piece_8_section:
        Polygon((CHAMFER4_SIZE * 0.999813220622, CHAMFER4_SIZE * 0.0193267656127), (-CHAMFER4_SIZE_2 * 0.0193267656104, CHAMFER4_SIZE_2 * 0.999813220502), (0, 0), align=None)
    chamfer4_piece_8 = extrude(amount=9.985131538, mode=Mode.PRIVATE)
    chamfer4_piece_8 = split(chamfer4_piece_8, bisect_by=Plane(origin=(24.500125104, 0.905532133, -6.639528096), z_dir=(0, 0, -1)), keep=Keep.TOP, mode=Mode.PRIVATE)
    add(chamfer4_piece_8)
    with BuildSketch(Plane(origin=(25, 0, -1.5), x_dir=(0.01932676561269762, 0.999813220622208, 0), z_dir=(0, 0, 1))) as chamfer4_piece_9_section:
        Polygon((CHAMFER4_SIZE * 0.999813220622, CHAMFER4_SIZE * 0.0193267656127), (-CHAMFER4_SIZE_2 * 0.0193267656104, CHAMFER4_SIZE_2 * 0.999813220502), (0, 0), align=None)
    chamfer4_piece_9 = extrude(amount=9.985131538, mode=Mode.PRIVATE)
    chamfer4_piece_9 = split(chamfer4_piece_9, bisect_by=Plane(origin=(24.500125104, 0.905532133, 6.639528096), z_dir=(0, 0, 1)), keep=Keep.TOP, mode=Mode.PRIVATE)
    add(chamfer4_piece_9)
    with BuildSketch(Plane(origin=(25, 0, -9.639528096), x_dir=(0.019326765612698894, 0.999813220622208, 0), z_dir=(0, 0, 1))) as chamfer4_piece_10_section:
        Polygon((CHAMFER4_SIZE * 0.999813220622, CHAMFER4_SIZE * 0.0193267656127), (-CHAMFER4_SIZE_2 * 0.0193267656104, CHAMFER4_SIZE_2 * 0.999813220502), (0, 0), align=None)
    chamfer4_piece_10 = extrude(amount=9.985131538, mode=Mode.PRIVATE)
    chamfer4_piece_10 = split(chamfer4_piece_10, bisect_by=Plane(origin=(24.500125104, 0.905532133, -1.5), z_dir=(0, 0, 1)), keep=Keep.TOP, mode=Mode.PRIVATE)
    add(chamfer4_piece_10)

    # Chamfer5
    # the kernel refuses this chamfer: 4.7, 2.713546265 mm, written as the material it takes off along each edge
    with BuildSketch(Plane(origin=(28, -3, -21.798831143), x_dir=(-0.9983227437537925, -0.0578938624026708, 0), z_dir=(0, 0, 1))) as chamfer5_piece_1:
        Polygon((CHAMFER5_SIZE * 0.998322743824, -CHAMFER5_SIZE * 0.0578938624068), (-CHAMFER5_SIZE_2 * 0.0578938624027, -CHAMFER5_SIZE_2 * 0.998322743754), (0, 0), align=None)
    extrude(amount=43.597662285, mode=Mode.SUBTRACT)
    with BuildSketch(Plane(origin=(-28, -3, -21.798831143), x_dir=(0.9983227437537925, -0.0578938624026708, 0), z_dir=(0, 0, 1))) as chamfer5_piece_2:
        Polygon((CHAMFER5_SIZE * 0.998322743824, CHAMFER5_SIZE * 0.0578938624068), (-CHAMFER5_SIZE_2 * 0.0578938624027, CHAMFER5_SIZE_2 * 0.998322743754), (0, 0), align=None)
    extrude(amount=43.597662285, mode=Mode.SUBTRACT)


solid = part.part
